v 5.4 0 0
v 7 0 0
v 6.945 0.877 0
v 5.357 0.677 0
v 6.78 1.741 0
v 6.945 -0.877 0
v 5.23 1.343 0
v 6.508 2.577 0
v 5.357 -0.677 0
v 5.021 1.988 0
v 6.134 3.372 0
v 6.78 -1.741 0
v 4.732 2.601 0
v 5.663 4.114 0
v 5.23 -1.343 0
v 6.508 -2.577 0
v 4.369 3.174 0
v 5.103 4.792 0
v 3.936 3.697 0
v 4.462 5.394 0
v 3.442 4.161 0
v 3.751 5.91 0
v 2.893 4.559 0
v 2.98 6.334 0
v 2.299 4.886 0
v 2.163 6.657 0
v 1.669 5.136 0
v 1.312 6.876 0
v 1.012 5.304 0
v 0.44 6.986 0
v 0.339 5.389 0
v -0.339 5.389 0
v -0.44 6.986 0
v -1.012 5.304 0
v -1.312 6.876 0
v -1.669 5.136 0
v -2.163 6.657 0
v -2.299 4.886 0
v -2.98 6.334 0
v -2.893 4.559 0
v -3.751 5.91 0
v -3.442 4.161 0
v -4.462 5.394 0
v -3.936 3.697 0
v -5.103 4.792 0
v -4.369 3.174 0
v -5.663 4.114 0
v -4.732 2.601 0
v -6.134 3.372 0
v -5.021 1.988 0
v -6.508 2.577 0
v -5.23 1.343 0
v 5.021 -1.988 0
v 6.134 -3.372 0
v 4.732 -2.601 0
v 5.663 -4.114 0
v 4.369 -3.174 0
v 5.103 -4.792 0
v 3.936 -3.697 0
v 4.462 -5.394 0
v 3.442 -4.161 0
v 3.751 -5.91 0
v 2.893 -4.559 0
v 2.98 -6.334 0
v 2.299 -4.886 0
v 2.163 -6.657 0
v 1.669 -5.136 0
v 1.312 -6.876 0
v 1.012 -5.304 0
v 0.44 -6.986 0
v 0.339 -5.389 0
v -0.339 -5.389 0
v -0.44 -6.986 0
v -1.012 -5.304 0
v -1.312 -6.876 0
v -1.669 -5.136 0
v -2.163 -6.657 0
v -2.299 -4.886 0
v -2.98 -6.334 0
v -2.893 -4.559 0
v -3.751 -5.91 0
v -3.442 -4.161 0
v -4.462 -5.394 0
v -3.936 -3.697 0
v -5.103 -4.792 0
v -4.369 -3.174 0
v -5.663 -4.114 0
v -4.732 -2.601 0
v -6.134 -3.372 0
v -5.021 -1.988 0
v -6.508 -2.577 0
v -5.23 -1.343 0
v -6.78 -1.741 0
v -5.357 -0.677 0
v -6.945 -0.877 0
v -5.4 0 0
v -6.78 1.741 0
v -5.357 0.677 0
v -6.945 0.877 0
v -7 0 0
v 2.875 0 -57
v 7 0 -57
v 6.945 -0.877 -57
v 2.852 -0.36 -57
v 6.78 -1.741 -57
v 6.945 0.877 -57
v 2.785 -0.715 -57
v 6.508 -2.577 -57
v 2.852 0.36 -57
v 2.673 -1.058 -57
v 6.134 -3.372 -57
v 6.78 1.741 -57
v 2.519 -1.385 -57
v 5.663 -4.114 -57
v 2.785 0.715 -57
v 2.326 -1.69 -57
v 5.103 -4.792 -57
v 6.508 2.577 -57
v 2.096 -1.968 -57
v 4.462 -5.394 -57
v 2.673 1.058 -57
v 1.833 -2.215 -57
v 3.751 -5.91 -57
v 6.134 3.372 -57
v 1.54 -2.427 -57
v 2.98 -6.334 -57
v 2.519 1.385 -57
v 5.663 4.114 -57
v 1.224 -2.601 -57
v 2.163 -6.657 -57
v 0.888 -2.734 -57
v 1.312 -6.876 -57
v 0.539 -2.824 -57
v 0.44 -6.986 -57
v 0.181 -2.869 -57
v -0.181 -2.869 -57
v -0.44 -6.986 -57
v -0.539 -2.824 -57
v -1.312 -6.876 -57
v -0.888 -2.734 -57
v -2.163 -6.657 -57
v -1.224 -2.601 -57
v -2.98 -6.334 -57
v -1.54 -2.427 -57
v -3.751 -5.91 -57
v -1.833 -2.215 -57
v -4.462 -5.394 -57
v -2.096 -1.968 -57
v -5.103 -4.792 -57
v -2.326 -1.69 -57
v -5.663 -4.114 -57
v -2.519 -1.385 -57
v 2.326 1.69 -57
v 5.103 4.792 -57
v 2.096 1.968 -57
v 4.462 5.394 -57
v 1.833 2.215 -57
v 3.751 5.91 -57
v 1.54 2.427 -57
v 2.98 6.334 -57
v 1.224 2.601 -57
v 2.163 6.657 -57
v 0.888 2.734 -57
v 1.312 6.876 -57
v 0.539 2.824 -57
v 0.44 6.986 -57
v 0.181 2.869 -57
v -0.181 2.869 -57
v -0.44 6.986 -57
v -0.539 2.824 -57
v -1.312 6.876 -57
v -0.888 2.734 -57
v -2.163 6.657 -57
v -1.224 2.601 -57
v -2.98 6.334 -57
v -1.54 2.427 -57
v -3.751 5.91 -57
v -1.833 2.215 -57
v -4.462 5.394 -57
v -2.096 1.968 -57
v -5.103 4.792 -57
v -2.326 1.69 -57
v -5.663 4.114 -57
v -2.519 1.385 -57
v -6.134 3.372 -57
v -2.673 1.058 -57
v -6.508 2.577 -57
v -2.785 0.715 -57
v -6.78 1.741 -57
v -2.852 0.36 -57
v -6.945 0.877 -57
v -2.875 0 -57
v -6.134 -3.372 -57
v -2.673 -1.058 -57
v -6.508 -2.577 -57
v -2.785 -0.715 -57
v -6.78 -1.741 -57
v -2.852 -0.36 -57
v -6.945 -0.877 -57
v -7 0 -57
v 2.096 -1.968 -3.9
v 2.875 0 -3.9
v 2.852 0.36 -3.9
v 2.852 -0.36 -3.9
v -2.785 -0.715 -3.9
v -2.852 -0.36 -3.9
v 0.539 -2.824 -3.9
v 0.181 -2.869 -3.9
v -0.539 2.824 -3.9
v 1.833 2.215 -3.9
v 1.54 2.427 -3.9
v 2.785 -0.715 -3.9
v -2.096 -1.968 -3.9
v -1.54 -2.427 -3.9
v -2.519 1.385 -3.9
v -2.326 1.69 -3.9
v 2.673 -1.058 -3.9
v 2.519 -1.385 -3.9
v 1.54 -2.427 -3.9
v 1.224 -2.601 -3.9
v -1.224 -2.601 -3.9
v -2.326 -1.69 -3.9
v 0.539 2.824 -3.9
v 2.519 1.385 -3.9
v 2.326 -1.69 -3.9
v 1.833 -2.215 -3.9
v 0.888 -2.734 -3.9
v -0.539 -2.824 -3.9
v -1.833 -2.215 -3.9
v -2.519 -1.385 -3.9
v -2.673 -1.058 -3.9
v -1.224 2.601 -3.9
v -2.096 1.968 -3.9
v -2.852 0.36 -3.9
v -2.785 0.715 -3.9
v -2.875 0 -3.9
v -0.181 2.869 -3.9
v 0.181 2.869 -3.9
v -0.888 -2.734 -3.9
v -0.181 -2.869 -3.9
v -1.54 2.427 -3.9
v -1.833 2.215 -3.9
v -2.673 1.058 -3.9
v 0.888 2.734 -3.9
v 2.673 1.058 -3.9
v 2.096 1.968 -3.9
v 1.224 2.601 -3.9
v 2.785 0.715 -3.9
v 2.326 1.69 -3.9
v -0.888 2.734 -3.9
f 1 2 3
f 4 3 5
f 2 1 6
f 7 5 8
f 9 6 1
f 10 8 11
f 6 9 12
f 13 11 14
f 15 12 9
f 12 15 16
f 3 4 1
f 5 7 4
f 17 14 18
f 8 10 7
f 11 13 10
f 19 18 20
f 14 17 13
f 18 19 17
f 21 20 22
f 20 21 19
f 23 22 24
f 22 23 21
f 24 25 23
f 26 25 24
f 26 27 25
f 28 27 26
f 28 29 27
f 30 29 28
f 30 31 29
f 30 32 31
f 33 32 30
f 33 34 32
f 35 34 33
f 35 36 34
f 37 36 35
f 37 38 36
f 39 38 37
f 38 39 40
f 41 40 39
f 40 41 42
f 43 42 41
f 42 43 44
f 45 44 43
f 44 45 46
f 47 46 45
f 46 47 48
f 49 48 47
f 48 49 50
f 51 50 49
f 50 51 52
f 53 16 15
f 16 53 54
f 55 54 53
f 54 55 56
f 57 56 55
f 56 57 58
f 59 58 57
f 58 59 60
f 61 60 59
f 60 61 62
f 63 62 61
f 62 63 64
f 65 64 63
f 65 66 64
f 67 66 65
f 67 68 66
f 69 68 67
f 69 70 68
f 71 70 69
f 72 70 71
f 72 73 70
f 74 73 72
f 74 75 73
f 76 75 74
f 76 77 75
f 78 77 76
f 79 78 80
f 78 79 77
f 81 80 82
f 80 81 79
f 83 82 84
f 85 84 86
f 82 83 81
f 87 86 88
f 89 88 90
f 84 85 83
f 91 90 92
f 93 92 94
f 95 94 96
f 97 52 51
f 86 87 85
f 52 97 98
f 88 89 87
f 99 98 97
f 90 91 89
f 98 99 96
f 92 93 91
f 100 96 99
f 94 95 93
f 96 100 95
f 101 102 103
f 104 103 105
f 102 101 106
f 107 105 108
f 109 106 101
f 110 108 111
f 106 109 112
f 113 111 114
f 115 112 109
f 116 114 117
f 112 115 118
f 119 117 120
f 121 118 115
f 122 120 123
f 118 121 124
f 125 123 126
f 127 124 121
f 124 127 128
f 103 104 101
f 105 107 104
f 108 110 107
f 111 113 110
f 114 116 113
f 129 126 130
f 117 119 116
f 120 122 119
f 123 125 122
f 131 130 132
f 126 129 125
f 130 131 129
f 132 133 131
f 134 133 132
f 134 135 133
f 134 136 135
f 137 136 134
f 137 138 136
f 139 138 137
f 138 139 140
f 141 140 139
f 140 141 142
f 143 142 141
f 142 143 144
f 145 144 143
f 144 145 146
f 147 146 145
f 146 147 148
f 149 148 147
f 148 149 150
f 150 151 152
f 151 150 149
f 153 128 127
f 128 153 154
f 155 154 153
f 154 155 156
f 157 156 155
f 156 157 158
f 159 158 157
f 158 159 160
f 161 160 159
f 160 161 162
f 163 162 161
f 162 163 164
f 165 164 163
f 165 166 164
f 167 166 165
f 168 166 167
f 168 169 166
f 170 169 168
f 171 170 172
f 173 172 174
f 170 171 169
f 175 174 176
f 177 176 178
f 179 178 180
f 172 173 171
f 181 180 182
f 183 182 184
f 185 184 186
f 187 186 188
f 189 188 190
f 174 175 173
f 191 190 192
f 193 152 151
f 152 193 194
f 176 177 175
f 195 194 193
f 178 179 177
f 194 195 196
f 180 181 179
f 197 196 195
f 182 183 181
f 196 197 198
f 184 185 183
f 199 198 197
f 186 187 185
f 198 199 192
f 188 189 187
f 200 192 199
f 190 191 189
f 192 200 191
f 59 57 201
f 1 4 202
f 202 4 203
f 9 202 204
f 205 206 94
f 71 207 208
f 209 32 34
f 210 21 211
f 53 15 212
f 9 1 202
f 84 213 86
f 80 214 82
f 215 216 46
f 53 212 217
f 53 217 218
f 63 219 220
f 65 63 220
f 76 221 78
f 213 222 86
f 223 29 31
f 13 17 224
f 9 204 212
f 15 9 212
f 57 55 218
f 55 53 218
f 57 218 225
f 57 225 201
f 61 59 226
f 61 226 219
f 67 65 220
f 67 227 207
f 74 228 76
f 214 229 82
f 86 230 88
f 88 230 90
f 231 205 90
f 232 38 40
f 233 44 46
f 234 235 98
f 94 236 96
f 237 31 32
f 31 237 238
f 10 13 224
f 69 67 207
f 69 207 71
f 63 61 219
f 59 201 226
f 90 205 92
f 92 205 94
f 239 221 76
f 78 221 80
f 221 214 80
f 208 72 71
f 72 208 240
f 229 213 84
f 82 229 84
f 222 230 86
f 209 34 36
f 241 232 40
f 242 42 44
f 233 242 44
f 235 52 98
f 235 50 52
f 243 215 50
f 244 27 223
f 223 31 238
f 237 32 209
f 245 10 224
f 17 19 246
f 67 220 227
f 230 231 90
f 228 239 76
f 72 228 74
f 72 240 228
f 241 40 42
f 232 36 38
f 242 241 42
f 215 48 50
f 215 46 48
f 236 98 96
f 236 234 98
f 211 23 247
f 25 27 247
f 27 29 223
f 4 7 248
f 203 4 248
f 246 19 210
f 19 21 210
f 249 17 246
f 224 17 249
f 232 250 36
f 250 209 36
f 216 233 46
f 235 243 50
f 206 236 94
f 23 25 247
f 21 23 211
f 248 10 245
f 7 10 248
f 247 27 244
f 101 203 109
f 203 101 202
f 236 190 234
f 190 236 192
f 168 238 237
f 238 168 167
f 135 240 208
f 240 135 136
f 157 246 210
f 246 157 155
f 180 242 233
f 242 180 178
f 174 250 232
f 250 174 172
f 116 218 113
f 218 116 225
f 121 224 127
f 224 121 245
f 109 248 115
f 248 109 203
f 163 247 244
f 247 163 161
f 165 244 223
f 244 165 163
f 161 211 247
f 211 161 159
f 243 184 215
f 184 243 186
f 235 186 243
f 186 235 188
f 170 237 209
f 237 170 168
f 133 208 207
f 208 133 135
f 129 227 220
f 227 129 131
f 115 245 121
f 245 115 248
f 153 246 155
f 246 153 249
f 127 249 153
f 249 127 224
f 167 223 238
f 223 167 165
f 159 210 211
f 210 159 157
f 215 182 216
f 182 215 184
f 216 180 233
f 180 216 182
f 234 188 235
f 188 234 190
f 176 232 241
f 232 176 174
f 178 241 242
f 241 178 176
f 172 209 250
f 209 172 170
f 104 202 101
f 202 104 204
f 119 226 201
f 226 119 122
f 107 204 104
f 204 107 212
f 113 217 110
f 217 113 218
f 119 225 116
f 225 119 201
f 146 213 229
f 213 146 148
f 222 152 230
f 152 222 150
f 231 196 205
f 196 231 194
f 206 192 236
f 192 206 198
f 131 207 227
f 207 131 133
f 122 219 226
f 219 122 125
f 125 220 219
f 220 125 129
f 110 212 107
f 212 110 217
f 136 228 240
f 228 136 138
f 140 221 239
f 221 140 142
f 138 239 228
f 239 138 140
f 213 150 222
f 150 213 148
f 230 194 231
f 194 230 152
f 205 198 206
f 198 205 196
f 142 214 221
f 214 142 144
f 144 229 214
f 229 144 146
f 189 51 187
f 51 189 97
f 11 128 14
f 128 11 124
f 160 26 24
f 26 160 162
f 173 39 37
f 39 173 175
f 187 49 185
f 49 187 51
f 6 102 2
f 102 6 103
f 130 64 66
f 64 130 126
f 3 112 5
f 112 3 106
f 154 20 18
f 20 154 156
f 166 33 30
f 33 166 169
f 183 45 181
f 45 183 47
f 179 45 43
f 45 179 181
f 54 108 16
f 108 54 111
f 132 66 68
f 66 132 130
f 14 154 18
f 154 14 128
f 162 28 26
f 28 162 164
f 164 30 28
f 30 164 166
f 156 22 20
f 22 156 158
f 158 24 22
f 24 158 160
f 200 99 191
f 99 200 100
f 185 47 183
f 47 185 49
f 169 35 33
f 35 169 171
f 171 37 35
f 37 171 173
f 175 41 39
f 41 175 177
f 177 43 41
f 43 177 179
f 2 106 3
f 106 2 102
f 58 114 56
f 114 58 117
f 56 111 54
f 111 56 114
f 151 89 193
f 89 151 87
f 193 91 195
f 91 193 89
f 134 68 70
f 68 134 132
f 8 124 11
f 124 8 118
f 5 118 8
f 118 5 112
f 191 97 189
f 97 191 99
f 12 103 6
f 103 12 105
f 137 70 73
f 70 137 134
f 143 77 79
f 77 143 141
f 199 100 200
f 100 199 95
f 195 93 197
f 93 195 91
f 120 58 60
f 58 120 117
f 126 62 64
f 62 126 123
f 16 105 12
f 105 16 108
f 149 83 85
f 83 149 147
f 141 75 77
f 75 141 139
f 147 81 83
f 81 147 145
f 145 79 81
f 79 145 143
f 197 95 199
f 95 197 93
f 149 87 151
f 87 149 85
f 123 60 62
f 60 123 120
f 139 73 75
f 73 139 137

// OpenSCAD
$fn = 50;


difference() {
	union() {
		translate(v = [0, 0, -57.0000000000]) {
			cylinder(h = 57, r = 7.0000000000);
		}
	}
	union() {
		translate(v = [0, 0, 0]) {
			rotate(a = [0, 0, 0]) {
				difference() {
					union() {
						#translate(v = [0, 0, -57.0000000000]) {
							cylinder(h = 57, r = 2.6000000000);
						}
						#translate(v = [0, 0, -3.9000000000]) {
							cylinder(h = 3.9000000000, r1 = 2.8750000000, r2 = 5.4000000000);
						}
						#translate(v = [0, 0, -57.0000000000]) {
							cylinder(h = 57, r = 2.8750000000);
						}
						#translate(v = [0, 0, -57.0000000000]) {
							cylinder(h = 57, r = 2.6000000000);
						}
					}
					union();
				}
			}
		}
	}
}
